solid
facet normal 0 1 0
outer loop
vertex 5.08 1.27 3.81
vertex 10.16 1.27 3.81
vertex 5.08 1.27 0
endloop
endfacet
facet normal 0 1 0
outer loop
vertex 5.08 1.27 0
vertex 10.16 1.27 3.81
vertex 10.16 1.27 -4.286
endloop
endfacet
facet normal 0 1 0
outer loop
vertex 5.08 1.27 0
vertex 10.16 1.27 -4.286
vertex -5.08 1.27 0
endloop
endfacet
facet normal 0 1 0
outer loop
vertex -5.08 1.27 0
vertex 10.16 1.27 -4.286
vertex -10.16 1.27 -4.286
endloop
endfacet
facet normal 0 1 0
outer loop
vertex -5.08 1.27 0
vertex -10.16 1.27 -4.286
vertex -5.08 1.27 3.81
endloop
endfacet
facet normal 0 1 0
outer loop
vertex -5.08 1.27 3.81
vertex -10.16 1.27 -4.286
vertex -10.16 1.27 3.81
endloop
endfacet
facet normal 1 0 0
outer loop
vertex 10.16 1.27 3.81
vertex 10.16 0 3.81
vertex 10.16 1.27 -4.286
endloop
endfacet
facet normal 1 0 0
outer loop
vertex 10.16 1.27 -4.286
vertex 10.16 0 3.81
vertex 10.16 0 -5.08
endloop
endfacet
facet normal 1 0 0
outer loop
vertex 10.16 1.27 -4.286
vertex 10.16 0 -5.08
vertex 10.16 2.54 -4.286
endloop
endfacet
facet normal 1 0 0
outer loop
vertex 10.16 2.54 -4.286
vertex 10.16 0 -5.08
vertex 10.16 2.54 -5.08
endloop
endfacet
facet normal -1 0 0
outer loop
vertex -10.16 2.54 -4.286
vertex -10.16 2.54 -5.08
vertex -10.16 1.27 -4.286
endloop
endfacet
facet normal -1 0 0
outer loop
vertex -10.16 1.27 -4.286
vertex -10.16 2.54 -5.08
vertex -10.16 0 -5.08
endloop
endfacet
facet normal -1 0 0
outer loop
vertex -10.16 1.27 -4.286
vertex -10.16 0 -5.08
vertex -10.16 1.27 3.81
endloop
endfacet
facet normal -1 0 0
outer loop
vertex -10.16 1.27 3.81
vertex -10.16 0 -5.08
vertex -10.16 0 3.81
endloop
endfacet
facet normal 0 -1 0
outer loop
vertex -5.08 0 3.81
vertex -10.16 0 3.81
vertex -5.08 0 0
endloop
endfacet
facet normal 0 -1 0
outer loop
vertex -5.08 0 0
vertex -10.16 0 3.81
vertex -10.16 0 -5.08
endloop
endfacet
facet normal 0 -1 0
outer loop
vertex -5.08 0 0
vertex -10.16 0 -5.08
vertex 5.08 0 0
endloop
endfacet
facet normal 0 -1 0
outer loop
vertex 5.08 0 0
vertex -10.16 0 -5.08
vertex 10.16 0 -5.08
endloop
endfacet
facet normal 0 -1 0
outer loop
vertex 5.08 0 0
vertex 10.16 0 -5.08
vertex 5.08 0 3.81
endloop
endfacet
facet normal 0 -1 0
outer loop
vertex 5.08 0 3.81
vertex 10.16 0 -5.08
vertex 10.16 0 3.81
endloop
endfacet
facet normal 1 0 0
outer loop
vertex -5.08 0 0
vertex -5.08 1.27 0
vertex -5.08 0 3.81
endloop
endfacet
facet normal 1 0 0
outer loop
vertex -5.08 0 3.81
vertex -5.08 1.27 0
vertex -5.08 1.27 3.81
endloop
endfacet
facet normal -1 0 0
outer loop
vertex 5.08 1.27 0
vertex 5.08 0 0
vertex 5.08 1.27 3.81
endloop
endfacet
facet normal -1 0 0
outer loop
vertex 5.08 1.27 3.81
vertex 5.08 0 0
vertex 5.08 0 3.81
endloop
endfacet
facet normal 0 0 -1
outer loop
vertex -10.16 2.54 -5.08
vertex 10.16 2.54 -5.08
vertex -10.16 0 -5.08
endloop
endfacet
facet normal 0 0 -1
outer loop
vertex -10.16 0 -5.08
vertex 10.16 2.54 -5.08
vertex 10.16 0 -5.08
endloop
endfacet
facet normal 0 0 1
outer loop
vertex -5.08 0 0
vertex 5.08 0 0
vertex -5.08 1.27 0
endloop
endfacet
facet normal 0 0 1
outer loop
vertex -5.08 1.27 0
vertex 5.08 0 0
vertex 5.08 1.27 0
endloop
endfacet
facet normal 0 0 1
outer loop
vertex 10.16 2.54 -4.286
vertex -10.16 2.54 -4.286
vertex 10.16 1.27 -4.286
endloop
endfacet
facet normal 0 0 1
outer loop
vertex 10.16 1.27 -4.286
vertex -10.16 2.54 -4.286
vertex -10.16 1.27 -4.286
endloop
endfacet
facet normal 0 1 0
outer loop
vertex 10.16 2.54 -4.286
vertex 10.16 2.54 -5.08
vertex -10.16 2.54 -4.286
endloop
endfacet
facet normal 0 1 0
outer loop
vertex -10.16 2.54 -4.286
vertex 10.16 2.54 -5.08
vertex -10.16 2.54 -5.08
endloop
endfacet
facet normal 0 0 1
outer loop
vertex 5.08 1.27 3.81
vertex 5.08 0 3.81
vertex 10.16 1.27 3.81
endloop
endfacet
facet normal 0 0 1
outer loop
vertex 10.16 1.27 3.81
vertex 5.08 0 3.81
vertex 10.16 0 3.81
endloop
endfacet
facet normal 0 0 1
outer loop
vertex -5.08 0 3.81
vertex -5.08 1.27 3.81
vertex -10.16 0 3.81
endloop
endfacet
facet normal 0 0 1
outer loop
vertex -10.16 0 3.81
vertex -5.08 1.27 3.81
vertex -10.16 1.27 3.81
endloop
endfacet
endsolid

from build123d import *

# Parameters (mm, degrees)
SKETCH1_W           = 20.32
SKETCH1_H           = 10.16
BOSS_EXTRUDE1_DEPTH = 1.27
SKETCH2_W           = 10.16
SKETCH2_H           = 5.08
CUT_EXTRUDE1_DEPTH  = 12.43
SKETCH4_W           = 20.32
SKETCH4_H           = 0.79375
BOSS_EXTRUDE2_DEPTH = 1.27
SKETCH5_W           = 5.08
SKETCH5_H           = 1.27
CUT_EXTRUDE2_DEPTH  = 1.27


with BuildPart() as part:
    # Sketch1 → Boss-Extrude1 (new body)
    with BuildSketch(Plane(origin=(0, 0, 0), x_dir=(1, 0, 0), z_dir=(0, 1, 0))):
        Rectangle(SKETCH1_W, SKETCH1_H)
    extrude(amount=BOSS_EXTRUDE1_DEPTH)

    # Sketch2 → Cut-Extrude1 (cut, through all)
    with BuildSketch(Plane(origin=(0, 1.27, 0), x_dir=(1, 0, 0), z_dir=(0, 1, 0))):
        with Locations((0, -2.54)):
            Rectangle(SKETCH2_W, SKETCH2_H)
    extrude(amount=-CUT_EXTRUDE1_DEPTH, mode=Mode.SUBTRACT)

    # Sketch4 → Boss-Extrude2 (add)
    with BuildSketch(Plane(origin=(0, 1.27, 0), x_dir=(1, 0, 0), z_dir=(0, 1, 0))):
        with Locations((0, 4.683125)):
            Rectangle(SKETCH4_W, SKETCH4_H)
    extrude(amount=BOSS_EXTRUDE2_DEPTH)

    # Sketch5 → Cut-Extrude2 (cut)
    with BuildSketch(Plane.XY.offset(5.08)):
        with Locations((7.62, 0.635)):
            Rectangle(SKETCH5_W, SKETCH5_H)
        with Locations((-7.62, 0.635)):
            Rectangle(SKETCH5_W, SKETCH5_H)
    extrude(amount=-CUT_EXTRUDE2_DEPTH, mode=Mode.SUBTRACT)


solid = part.part
